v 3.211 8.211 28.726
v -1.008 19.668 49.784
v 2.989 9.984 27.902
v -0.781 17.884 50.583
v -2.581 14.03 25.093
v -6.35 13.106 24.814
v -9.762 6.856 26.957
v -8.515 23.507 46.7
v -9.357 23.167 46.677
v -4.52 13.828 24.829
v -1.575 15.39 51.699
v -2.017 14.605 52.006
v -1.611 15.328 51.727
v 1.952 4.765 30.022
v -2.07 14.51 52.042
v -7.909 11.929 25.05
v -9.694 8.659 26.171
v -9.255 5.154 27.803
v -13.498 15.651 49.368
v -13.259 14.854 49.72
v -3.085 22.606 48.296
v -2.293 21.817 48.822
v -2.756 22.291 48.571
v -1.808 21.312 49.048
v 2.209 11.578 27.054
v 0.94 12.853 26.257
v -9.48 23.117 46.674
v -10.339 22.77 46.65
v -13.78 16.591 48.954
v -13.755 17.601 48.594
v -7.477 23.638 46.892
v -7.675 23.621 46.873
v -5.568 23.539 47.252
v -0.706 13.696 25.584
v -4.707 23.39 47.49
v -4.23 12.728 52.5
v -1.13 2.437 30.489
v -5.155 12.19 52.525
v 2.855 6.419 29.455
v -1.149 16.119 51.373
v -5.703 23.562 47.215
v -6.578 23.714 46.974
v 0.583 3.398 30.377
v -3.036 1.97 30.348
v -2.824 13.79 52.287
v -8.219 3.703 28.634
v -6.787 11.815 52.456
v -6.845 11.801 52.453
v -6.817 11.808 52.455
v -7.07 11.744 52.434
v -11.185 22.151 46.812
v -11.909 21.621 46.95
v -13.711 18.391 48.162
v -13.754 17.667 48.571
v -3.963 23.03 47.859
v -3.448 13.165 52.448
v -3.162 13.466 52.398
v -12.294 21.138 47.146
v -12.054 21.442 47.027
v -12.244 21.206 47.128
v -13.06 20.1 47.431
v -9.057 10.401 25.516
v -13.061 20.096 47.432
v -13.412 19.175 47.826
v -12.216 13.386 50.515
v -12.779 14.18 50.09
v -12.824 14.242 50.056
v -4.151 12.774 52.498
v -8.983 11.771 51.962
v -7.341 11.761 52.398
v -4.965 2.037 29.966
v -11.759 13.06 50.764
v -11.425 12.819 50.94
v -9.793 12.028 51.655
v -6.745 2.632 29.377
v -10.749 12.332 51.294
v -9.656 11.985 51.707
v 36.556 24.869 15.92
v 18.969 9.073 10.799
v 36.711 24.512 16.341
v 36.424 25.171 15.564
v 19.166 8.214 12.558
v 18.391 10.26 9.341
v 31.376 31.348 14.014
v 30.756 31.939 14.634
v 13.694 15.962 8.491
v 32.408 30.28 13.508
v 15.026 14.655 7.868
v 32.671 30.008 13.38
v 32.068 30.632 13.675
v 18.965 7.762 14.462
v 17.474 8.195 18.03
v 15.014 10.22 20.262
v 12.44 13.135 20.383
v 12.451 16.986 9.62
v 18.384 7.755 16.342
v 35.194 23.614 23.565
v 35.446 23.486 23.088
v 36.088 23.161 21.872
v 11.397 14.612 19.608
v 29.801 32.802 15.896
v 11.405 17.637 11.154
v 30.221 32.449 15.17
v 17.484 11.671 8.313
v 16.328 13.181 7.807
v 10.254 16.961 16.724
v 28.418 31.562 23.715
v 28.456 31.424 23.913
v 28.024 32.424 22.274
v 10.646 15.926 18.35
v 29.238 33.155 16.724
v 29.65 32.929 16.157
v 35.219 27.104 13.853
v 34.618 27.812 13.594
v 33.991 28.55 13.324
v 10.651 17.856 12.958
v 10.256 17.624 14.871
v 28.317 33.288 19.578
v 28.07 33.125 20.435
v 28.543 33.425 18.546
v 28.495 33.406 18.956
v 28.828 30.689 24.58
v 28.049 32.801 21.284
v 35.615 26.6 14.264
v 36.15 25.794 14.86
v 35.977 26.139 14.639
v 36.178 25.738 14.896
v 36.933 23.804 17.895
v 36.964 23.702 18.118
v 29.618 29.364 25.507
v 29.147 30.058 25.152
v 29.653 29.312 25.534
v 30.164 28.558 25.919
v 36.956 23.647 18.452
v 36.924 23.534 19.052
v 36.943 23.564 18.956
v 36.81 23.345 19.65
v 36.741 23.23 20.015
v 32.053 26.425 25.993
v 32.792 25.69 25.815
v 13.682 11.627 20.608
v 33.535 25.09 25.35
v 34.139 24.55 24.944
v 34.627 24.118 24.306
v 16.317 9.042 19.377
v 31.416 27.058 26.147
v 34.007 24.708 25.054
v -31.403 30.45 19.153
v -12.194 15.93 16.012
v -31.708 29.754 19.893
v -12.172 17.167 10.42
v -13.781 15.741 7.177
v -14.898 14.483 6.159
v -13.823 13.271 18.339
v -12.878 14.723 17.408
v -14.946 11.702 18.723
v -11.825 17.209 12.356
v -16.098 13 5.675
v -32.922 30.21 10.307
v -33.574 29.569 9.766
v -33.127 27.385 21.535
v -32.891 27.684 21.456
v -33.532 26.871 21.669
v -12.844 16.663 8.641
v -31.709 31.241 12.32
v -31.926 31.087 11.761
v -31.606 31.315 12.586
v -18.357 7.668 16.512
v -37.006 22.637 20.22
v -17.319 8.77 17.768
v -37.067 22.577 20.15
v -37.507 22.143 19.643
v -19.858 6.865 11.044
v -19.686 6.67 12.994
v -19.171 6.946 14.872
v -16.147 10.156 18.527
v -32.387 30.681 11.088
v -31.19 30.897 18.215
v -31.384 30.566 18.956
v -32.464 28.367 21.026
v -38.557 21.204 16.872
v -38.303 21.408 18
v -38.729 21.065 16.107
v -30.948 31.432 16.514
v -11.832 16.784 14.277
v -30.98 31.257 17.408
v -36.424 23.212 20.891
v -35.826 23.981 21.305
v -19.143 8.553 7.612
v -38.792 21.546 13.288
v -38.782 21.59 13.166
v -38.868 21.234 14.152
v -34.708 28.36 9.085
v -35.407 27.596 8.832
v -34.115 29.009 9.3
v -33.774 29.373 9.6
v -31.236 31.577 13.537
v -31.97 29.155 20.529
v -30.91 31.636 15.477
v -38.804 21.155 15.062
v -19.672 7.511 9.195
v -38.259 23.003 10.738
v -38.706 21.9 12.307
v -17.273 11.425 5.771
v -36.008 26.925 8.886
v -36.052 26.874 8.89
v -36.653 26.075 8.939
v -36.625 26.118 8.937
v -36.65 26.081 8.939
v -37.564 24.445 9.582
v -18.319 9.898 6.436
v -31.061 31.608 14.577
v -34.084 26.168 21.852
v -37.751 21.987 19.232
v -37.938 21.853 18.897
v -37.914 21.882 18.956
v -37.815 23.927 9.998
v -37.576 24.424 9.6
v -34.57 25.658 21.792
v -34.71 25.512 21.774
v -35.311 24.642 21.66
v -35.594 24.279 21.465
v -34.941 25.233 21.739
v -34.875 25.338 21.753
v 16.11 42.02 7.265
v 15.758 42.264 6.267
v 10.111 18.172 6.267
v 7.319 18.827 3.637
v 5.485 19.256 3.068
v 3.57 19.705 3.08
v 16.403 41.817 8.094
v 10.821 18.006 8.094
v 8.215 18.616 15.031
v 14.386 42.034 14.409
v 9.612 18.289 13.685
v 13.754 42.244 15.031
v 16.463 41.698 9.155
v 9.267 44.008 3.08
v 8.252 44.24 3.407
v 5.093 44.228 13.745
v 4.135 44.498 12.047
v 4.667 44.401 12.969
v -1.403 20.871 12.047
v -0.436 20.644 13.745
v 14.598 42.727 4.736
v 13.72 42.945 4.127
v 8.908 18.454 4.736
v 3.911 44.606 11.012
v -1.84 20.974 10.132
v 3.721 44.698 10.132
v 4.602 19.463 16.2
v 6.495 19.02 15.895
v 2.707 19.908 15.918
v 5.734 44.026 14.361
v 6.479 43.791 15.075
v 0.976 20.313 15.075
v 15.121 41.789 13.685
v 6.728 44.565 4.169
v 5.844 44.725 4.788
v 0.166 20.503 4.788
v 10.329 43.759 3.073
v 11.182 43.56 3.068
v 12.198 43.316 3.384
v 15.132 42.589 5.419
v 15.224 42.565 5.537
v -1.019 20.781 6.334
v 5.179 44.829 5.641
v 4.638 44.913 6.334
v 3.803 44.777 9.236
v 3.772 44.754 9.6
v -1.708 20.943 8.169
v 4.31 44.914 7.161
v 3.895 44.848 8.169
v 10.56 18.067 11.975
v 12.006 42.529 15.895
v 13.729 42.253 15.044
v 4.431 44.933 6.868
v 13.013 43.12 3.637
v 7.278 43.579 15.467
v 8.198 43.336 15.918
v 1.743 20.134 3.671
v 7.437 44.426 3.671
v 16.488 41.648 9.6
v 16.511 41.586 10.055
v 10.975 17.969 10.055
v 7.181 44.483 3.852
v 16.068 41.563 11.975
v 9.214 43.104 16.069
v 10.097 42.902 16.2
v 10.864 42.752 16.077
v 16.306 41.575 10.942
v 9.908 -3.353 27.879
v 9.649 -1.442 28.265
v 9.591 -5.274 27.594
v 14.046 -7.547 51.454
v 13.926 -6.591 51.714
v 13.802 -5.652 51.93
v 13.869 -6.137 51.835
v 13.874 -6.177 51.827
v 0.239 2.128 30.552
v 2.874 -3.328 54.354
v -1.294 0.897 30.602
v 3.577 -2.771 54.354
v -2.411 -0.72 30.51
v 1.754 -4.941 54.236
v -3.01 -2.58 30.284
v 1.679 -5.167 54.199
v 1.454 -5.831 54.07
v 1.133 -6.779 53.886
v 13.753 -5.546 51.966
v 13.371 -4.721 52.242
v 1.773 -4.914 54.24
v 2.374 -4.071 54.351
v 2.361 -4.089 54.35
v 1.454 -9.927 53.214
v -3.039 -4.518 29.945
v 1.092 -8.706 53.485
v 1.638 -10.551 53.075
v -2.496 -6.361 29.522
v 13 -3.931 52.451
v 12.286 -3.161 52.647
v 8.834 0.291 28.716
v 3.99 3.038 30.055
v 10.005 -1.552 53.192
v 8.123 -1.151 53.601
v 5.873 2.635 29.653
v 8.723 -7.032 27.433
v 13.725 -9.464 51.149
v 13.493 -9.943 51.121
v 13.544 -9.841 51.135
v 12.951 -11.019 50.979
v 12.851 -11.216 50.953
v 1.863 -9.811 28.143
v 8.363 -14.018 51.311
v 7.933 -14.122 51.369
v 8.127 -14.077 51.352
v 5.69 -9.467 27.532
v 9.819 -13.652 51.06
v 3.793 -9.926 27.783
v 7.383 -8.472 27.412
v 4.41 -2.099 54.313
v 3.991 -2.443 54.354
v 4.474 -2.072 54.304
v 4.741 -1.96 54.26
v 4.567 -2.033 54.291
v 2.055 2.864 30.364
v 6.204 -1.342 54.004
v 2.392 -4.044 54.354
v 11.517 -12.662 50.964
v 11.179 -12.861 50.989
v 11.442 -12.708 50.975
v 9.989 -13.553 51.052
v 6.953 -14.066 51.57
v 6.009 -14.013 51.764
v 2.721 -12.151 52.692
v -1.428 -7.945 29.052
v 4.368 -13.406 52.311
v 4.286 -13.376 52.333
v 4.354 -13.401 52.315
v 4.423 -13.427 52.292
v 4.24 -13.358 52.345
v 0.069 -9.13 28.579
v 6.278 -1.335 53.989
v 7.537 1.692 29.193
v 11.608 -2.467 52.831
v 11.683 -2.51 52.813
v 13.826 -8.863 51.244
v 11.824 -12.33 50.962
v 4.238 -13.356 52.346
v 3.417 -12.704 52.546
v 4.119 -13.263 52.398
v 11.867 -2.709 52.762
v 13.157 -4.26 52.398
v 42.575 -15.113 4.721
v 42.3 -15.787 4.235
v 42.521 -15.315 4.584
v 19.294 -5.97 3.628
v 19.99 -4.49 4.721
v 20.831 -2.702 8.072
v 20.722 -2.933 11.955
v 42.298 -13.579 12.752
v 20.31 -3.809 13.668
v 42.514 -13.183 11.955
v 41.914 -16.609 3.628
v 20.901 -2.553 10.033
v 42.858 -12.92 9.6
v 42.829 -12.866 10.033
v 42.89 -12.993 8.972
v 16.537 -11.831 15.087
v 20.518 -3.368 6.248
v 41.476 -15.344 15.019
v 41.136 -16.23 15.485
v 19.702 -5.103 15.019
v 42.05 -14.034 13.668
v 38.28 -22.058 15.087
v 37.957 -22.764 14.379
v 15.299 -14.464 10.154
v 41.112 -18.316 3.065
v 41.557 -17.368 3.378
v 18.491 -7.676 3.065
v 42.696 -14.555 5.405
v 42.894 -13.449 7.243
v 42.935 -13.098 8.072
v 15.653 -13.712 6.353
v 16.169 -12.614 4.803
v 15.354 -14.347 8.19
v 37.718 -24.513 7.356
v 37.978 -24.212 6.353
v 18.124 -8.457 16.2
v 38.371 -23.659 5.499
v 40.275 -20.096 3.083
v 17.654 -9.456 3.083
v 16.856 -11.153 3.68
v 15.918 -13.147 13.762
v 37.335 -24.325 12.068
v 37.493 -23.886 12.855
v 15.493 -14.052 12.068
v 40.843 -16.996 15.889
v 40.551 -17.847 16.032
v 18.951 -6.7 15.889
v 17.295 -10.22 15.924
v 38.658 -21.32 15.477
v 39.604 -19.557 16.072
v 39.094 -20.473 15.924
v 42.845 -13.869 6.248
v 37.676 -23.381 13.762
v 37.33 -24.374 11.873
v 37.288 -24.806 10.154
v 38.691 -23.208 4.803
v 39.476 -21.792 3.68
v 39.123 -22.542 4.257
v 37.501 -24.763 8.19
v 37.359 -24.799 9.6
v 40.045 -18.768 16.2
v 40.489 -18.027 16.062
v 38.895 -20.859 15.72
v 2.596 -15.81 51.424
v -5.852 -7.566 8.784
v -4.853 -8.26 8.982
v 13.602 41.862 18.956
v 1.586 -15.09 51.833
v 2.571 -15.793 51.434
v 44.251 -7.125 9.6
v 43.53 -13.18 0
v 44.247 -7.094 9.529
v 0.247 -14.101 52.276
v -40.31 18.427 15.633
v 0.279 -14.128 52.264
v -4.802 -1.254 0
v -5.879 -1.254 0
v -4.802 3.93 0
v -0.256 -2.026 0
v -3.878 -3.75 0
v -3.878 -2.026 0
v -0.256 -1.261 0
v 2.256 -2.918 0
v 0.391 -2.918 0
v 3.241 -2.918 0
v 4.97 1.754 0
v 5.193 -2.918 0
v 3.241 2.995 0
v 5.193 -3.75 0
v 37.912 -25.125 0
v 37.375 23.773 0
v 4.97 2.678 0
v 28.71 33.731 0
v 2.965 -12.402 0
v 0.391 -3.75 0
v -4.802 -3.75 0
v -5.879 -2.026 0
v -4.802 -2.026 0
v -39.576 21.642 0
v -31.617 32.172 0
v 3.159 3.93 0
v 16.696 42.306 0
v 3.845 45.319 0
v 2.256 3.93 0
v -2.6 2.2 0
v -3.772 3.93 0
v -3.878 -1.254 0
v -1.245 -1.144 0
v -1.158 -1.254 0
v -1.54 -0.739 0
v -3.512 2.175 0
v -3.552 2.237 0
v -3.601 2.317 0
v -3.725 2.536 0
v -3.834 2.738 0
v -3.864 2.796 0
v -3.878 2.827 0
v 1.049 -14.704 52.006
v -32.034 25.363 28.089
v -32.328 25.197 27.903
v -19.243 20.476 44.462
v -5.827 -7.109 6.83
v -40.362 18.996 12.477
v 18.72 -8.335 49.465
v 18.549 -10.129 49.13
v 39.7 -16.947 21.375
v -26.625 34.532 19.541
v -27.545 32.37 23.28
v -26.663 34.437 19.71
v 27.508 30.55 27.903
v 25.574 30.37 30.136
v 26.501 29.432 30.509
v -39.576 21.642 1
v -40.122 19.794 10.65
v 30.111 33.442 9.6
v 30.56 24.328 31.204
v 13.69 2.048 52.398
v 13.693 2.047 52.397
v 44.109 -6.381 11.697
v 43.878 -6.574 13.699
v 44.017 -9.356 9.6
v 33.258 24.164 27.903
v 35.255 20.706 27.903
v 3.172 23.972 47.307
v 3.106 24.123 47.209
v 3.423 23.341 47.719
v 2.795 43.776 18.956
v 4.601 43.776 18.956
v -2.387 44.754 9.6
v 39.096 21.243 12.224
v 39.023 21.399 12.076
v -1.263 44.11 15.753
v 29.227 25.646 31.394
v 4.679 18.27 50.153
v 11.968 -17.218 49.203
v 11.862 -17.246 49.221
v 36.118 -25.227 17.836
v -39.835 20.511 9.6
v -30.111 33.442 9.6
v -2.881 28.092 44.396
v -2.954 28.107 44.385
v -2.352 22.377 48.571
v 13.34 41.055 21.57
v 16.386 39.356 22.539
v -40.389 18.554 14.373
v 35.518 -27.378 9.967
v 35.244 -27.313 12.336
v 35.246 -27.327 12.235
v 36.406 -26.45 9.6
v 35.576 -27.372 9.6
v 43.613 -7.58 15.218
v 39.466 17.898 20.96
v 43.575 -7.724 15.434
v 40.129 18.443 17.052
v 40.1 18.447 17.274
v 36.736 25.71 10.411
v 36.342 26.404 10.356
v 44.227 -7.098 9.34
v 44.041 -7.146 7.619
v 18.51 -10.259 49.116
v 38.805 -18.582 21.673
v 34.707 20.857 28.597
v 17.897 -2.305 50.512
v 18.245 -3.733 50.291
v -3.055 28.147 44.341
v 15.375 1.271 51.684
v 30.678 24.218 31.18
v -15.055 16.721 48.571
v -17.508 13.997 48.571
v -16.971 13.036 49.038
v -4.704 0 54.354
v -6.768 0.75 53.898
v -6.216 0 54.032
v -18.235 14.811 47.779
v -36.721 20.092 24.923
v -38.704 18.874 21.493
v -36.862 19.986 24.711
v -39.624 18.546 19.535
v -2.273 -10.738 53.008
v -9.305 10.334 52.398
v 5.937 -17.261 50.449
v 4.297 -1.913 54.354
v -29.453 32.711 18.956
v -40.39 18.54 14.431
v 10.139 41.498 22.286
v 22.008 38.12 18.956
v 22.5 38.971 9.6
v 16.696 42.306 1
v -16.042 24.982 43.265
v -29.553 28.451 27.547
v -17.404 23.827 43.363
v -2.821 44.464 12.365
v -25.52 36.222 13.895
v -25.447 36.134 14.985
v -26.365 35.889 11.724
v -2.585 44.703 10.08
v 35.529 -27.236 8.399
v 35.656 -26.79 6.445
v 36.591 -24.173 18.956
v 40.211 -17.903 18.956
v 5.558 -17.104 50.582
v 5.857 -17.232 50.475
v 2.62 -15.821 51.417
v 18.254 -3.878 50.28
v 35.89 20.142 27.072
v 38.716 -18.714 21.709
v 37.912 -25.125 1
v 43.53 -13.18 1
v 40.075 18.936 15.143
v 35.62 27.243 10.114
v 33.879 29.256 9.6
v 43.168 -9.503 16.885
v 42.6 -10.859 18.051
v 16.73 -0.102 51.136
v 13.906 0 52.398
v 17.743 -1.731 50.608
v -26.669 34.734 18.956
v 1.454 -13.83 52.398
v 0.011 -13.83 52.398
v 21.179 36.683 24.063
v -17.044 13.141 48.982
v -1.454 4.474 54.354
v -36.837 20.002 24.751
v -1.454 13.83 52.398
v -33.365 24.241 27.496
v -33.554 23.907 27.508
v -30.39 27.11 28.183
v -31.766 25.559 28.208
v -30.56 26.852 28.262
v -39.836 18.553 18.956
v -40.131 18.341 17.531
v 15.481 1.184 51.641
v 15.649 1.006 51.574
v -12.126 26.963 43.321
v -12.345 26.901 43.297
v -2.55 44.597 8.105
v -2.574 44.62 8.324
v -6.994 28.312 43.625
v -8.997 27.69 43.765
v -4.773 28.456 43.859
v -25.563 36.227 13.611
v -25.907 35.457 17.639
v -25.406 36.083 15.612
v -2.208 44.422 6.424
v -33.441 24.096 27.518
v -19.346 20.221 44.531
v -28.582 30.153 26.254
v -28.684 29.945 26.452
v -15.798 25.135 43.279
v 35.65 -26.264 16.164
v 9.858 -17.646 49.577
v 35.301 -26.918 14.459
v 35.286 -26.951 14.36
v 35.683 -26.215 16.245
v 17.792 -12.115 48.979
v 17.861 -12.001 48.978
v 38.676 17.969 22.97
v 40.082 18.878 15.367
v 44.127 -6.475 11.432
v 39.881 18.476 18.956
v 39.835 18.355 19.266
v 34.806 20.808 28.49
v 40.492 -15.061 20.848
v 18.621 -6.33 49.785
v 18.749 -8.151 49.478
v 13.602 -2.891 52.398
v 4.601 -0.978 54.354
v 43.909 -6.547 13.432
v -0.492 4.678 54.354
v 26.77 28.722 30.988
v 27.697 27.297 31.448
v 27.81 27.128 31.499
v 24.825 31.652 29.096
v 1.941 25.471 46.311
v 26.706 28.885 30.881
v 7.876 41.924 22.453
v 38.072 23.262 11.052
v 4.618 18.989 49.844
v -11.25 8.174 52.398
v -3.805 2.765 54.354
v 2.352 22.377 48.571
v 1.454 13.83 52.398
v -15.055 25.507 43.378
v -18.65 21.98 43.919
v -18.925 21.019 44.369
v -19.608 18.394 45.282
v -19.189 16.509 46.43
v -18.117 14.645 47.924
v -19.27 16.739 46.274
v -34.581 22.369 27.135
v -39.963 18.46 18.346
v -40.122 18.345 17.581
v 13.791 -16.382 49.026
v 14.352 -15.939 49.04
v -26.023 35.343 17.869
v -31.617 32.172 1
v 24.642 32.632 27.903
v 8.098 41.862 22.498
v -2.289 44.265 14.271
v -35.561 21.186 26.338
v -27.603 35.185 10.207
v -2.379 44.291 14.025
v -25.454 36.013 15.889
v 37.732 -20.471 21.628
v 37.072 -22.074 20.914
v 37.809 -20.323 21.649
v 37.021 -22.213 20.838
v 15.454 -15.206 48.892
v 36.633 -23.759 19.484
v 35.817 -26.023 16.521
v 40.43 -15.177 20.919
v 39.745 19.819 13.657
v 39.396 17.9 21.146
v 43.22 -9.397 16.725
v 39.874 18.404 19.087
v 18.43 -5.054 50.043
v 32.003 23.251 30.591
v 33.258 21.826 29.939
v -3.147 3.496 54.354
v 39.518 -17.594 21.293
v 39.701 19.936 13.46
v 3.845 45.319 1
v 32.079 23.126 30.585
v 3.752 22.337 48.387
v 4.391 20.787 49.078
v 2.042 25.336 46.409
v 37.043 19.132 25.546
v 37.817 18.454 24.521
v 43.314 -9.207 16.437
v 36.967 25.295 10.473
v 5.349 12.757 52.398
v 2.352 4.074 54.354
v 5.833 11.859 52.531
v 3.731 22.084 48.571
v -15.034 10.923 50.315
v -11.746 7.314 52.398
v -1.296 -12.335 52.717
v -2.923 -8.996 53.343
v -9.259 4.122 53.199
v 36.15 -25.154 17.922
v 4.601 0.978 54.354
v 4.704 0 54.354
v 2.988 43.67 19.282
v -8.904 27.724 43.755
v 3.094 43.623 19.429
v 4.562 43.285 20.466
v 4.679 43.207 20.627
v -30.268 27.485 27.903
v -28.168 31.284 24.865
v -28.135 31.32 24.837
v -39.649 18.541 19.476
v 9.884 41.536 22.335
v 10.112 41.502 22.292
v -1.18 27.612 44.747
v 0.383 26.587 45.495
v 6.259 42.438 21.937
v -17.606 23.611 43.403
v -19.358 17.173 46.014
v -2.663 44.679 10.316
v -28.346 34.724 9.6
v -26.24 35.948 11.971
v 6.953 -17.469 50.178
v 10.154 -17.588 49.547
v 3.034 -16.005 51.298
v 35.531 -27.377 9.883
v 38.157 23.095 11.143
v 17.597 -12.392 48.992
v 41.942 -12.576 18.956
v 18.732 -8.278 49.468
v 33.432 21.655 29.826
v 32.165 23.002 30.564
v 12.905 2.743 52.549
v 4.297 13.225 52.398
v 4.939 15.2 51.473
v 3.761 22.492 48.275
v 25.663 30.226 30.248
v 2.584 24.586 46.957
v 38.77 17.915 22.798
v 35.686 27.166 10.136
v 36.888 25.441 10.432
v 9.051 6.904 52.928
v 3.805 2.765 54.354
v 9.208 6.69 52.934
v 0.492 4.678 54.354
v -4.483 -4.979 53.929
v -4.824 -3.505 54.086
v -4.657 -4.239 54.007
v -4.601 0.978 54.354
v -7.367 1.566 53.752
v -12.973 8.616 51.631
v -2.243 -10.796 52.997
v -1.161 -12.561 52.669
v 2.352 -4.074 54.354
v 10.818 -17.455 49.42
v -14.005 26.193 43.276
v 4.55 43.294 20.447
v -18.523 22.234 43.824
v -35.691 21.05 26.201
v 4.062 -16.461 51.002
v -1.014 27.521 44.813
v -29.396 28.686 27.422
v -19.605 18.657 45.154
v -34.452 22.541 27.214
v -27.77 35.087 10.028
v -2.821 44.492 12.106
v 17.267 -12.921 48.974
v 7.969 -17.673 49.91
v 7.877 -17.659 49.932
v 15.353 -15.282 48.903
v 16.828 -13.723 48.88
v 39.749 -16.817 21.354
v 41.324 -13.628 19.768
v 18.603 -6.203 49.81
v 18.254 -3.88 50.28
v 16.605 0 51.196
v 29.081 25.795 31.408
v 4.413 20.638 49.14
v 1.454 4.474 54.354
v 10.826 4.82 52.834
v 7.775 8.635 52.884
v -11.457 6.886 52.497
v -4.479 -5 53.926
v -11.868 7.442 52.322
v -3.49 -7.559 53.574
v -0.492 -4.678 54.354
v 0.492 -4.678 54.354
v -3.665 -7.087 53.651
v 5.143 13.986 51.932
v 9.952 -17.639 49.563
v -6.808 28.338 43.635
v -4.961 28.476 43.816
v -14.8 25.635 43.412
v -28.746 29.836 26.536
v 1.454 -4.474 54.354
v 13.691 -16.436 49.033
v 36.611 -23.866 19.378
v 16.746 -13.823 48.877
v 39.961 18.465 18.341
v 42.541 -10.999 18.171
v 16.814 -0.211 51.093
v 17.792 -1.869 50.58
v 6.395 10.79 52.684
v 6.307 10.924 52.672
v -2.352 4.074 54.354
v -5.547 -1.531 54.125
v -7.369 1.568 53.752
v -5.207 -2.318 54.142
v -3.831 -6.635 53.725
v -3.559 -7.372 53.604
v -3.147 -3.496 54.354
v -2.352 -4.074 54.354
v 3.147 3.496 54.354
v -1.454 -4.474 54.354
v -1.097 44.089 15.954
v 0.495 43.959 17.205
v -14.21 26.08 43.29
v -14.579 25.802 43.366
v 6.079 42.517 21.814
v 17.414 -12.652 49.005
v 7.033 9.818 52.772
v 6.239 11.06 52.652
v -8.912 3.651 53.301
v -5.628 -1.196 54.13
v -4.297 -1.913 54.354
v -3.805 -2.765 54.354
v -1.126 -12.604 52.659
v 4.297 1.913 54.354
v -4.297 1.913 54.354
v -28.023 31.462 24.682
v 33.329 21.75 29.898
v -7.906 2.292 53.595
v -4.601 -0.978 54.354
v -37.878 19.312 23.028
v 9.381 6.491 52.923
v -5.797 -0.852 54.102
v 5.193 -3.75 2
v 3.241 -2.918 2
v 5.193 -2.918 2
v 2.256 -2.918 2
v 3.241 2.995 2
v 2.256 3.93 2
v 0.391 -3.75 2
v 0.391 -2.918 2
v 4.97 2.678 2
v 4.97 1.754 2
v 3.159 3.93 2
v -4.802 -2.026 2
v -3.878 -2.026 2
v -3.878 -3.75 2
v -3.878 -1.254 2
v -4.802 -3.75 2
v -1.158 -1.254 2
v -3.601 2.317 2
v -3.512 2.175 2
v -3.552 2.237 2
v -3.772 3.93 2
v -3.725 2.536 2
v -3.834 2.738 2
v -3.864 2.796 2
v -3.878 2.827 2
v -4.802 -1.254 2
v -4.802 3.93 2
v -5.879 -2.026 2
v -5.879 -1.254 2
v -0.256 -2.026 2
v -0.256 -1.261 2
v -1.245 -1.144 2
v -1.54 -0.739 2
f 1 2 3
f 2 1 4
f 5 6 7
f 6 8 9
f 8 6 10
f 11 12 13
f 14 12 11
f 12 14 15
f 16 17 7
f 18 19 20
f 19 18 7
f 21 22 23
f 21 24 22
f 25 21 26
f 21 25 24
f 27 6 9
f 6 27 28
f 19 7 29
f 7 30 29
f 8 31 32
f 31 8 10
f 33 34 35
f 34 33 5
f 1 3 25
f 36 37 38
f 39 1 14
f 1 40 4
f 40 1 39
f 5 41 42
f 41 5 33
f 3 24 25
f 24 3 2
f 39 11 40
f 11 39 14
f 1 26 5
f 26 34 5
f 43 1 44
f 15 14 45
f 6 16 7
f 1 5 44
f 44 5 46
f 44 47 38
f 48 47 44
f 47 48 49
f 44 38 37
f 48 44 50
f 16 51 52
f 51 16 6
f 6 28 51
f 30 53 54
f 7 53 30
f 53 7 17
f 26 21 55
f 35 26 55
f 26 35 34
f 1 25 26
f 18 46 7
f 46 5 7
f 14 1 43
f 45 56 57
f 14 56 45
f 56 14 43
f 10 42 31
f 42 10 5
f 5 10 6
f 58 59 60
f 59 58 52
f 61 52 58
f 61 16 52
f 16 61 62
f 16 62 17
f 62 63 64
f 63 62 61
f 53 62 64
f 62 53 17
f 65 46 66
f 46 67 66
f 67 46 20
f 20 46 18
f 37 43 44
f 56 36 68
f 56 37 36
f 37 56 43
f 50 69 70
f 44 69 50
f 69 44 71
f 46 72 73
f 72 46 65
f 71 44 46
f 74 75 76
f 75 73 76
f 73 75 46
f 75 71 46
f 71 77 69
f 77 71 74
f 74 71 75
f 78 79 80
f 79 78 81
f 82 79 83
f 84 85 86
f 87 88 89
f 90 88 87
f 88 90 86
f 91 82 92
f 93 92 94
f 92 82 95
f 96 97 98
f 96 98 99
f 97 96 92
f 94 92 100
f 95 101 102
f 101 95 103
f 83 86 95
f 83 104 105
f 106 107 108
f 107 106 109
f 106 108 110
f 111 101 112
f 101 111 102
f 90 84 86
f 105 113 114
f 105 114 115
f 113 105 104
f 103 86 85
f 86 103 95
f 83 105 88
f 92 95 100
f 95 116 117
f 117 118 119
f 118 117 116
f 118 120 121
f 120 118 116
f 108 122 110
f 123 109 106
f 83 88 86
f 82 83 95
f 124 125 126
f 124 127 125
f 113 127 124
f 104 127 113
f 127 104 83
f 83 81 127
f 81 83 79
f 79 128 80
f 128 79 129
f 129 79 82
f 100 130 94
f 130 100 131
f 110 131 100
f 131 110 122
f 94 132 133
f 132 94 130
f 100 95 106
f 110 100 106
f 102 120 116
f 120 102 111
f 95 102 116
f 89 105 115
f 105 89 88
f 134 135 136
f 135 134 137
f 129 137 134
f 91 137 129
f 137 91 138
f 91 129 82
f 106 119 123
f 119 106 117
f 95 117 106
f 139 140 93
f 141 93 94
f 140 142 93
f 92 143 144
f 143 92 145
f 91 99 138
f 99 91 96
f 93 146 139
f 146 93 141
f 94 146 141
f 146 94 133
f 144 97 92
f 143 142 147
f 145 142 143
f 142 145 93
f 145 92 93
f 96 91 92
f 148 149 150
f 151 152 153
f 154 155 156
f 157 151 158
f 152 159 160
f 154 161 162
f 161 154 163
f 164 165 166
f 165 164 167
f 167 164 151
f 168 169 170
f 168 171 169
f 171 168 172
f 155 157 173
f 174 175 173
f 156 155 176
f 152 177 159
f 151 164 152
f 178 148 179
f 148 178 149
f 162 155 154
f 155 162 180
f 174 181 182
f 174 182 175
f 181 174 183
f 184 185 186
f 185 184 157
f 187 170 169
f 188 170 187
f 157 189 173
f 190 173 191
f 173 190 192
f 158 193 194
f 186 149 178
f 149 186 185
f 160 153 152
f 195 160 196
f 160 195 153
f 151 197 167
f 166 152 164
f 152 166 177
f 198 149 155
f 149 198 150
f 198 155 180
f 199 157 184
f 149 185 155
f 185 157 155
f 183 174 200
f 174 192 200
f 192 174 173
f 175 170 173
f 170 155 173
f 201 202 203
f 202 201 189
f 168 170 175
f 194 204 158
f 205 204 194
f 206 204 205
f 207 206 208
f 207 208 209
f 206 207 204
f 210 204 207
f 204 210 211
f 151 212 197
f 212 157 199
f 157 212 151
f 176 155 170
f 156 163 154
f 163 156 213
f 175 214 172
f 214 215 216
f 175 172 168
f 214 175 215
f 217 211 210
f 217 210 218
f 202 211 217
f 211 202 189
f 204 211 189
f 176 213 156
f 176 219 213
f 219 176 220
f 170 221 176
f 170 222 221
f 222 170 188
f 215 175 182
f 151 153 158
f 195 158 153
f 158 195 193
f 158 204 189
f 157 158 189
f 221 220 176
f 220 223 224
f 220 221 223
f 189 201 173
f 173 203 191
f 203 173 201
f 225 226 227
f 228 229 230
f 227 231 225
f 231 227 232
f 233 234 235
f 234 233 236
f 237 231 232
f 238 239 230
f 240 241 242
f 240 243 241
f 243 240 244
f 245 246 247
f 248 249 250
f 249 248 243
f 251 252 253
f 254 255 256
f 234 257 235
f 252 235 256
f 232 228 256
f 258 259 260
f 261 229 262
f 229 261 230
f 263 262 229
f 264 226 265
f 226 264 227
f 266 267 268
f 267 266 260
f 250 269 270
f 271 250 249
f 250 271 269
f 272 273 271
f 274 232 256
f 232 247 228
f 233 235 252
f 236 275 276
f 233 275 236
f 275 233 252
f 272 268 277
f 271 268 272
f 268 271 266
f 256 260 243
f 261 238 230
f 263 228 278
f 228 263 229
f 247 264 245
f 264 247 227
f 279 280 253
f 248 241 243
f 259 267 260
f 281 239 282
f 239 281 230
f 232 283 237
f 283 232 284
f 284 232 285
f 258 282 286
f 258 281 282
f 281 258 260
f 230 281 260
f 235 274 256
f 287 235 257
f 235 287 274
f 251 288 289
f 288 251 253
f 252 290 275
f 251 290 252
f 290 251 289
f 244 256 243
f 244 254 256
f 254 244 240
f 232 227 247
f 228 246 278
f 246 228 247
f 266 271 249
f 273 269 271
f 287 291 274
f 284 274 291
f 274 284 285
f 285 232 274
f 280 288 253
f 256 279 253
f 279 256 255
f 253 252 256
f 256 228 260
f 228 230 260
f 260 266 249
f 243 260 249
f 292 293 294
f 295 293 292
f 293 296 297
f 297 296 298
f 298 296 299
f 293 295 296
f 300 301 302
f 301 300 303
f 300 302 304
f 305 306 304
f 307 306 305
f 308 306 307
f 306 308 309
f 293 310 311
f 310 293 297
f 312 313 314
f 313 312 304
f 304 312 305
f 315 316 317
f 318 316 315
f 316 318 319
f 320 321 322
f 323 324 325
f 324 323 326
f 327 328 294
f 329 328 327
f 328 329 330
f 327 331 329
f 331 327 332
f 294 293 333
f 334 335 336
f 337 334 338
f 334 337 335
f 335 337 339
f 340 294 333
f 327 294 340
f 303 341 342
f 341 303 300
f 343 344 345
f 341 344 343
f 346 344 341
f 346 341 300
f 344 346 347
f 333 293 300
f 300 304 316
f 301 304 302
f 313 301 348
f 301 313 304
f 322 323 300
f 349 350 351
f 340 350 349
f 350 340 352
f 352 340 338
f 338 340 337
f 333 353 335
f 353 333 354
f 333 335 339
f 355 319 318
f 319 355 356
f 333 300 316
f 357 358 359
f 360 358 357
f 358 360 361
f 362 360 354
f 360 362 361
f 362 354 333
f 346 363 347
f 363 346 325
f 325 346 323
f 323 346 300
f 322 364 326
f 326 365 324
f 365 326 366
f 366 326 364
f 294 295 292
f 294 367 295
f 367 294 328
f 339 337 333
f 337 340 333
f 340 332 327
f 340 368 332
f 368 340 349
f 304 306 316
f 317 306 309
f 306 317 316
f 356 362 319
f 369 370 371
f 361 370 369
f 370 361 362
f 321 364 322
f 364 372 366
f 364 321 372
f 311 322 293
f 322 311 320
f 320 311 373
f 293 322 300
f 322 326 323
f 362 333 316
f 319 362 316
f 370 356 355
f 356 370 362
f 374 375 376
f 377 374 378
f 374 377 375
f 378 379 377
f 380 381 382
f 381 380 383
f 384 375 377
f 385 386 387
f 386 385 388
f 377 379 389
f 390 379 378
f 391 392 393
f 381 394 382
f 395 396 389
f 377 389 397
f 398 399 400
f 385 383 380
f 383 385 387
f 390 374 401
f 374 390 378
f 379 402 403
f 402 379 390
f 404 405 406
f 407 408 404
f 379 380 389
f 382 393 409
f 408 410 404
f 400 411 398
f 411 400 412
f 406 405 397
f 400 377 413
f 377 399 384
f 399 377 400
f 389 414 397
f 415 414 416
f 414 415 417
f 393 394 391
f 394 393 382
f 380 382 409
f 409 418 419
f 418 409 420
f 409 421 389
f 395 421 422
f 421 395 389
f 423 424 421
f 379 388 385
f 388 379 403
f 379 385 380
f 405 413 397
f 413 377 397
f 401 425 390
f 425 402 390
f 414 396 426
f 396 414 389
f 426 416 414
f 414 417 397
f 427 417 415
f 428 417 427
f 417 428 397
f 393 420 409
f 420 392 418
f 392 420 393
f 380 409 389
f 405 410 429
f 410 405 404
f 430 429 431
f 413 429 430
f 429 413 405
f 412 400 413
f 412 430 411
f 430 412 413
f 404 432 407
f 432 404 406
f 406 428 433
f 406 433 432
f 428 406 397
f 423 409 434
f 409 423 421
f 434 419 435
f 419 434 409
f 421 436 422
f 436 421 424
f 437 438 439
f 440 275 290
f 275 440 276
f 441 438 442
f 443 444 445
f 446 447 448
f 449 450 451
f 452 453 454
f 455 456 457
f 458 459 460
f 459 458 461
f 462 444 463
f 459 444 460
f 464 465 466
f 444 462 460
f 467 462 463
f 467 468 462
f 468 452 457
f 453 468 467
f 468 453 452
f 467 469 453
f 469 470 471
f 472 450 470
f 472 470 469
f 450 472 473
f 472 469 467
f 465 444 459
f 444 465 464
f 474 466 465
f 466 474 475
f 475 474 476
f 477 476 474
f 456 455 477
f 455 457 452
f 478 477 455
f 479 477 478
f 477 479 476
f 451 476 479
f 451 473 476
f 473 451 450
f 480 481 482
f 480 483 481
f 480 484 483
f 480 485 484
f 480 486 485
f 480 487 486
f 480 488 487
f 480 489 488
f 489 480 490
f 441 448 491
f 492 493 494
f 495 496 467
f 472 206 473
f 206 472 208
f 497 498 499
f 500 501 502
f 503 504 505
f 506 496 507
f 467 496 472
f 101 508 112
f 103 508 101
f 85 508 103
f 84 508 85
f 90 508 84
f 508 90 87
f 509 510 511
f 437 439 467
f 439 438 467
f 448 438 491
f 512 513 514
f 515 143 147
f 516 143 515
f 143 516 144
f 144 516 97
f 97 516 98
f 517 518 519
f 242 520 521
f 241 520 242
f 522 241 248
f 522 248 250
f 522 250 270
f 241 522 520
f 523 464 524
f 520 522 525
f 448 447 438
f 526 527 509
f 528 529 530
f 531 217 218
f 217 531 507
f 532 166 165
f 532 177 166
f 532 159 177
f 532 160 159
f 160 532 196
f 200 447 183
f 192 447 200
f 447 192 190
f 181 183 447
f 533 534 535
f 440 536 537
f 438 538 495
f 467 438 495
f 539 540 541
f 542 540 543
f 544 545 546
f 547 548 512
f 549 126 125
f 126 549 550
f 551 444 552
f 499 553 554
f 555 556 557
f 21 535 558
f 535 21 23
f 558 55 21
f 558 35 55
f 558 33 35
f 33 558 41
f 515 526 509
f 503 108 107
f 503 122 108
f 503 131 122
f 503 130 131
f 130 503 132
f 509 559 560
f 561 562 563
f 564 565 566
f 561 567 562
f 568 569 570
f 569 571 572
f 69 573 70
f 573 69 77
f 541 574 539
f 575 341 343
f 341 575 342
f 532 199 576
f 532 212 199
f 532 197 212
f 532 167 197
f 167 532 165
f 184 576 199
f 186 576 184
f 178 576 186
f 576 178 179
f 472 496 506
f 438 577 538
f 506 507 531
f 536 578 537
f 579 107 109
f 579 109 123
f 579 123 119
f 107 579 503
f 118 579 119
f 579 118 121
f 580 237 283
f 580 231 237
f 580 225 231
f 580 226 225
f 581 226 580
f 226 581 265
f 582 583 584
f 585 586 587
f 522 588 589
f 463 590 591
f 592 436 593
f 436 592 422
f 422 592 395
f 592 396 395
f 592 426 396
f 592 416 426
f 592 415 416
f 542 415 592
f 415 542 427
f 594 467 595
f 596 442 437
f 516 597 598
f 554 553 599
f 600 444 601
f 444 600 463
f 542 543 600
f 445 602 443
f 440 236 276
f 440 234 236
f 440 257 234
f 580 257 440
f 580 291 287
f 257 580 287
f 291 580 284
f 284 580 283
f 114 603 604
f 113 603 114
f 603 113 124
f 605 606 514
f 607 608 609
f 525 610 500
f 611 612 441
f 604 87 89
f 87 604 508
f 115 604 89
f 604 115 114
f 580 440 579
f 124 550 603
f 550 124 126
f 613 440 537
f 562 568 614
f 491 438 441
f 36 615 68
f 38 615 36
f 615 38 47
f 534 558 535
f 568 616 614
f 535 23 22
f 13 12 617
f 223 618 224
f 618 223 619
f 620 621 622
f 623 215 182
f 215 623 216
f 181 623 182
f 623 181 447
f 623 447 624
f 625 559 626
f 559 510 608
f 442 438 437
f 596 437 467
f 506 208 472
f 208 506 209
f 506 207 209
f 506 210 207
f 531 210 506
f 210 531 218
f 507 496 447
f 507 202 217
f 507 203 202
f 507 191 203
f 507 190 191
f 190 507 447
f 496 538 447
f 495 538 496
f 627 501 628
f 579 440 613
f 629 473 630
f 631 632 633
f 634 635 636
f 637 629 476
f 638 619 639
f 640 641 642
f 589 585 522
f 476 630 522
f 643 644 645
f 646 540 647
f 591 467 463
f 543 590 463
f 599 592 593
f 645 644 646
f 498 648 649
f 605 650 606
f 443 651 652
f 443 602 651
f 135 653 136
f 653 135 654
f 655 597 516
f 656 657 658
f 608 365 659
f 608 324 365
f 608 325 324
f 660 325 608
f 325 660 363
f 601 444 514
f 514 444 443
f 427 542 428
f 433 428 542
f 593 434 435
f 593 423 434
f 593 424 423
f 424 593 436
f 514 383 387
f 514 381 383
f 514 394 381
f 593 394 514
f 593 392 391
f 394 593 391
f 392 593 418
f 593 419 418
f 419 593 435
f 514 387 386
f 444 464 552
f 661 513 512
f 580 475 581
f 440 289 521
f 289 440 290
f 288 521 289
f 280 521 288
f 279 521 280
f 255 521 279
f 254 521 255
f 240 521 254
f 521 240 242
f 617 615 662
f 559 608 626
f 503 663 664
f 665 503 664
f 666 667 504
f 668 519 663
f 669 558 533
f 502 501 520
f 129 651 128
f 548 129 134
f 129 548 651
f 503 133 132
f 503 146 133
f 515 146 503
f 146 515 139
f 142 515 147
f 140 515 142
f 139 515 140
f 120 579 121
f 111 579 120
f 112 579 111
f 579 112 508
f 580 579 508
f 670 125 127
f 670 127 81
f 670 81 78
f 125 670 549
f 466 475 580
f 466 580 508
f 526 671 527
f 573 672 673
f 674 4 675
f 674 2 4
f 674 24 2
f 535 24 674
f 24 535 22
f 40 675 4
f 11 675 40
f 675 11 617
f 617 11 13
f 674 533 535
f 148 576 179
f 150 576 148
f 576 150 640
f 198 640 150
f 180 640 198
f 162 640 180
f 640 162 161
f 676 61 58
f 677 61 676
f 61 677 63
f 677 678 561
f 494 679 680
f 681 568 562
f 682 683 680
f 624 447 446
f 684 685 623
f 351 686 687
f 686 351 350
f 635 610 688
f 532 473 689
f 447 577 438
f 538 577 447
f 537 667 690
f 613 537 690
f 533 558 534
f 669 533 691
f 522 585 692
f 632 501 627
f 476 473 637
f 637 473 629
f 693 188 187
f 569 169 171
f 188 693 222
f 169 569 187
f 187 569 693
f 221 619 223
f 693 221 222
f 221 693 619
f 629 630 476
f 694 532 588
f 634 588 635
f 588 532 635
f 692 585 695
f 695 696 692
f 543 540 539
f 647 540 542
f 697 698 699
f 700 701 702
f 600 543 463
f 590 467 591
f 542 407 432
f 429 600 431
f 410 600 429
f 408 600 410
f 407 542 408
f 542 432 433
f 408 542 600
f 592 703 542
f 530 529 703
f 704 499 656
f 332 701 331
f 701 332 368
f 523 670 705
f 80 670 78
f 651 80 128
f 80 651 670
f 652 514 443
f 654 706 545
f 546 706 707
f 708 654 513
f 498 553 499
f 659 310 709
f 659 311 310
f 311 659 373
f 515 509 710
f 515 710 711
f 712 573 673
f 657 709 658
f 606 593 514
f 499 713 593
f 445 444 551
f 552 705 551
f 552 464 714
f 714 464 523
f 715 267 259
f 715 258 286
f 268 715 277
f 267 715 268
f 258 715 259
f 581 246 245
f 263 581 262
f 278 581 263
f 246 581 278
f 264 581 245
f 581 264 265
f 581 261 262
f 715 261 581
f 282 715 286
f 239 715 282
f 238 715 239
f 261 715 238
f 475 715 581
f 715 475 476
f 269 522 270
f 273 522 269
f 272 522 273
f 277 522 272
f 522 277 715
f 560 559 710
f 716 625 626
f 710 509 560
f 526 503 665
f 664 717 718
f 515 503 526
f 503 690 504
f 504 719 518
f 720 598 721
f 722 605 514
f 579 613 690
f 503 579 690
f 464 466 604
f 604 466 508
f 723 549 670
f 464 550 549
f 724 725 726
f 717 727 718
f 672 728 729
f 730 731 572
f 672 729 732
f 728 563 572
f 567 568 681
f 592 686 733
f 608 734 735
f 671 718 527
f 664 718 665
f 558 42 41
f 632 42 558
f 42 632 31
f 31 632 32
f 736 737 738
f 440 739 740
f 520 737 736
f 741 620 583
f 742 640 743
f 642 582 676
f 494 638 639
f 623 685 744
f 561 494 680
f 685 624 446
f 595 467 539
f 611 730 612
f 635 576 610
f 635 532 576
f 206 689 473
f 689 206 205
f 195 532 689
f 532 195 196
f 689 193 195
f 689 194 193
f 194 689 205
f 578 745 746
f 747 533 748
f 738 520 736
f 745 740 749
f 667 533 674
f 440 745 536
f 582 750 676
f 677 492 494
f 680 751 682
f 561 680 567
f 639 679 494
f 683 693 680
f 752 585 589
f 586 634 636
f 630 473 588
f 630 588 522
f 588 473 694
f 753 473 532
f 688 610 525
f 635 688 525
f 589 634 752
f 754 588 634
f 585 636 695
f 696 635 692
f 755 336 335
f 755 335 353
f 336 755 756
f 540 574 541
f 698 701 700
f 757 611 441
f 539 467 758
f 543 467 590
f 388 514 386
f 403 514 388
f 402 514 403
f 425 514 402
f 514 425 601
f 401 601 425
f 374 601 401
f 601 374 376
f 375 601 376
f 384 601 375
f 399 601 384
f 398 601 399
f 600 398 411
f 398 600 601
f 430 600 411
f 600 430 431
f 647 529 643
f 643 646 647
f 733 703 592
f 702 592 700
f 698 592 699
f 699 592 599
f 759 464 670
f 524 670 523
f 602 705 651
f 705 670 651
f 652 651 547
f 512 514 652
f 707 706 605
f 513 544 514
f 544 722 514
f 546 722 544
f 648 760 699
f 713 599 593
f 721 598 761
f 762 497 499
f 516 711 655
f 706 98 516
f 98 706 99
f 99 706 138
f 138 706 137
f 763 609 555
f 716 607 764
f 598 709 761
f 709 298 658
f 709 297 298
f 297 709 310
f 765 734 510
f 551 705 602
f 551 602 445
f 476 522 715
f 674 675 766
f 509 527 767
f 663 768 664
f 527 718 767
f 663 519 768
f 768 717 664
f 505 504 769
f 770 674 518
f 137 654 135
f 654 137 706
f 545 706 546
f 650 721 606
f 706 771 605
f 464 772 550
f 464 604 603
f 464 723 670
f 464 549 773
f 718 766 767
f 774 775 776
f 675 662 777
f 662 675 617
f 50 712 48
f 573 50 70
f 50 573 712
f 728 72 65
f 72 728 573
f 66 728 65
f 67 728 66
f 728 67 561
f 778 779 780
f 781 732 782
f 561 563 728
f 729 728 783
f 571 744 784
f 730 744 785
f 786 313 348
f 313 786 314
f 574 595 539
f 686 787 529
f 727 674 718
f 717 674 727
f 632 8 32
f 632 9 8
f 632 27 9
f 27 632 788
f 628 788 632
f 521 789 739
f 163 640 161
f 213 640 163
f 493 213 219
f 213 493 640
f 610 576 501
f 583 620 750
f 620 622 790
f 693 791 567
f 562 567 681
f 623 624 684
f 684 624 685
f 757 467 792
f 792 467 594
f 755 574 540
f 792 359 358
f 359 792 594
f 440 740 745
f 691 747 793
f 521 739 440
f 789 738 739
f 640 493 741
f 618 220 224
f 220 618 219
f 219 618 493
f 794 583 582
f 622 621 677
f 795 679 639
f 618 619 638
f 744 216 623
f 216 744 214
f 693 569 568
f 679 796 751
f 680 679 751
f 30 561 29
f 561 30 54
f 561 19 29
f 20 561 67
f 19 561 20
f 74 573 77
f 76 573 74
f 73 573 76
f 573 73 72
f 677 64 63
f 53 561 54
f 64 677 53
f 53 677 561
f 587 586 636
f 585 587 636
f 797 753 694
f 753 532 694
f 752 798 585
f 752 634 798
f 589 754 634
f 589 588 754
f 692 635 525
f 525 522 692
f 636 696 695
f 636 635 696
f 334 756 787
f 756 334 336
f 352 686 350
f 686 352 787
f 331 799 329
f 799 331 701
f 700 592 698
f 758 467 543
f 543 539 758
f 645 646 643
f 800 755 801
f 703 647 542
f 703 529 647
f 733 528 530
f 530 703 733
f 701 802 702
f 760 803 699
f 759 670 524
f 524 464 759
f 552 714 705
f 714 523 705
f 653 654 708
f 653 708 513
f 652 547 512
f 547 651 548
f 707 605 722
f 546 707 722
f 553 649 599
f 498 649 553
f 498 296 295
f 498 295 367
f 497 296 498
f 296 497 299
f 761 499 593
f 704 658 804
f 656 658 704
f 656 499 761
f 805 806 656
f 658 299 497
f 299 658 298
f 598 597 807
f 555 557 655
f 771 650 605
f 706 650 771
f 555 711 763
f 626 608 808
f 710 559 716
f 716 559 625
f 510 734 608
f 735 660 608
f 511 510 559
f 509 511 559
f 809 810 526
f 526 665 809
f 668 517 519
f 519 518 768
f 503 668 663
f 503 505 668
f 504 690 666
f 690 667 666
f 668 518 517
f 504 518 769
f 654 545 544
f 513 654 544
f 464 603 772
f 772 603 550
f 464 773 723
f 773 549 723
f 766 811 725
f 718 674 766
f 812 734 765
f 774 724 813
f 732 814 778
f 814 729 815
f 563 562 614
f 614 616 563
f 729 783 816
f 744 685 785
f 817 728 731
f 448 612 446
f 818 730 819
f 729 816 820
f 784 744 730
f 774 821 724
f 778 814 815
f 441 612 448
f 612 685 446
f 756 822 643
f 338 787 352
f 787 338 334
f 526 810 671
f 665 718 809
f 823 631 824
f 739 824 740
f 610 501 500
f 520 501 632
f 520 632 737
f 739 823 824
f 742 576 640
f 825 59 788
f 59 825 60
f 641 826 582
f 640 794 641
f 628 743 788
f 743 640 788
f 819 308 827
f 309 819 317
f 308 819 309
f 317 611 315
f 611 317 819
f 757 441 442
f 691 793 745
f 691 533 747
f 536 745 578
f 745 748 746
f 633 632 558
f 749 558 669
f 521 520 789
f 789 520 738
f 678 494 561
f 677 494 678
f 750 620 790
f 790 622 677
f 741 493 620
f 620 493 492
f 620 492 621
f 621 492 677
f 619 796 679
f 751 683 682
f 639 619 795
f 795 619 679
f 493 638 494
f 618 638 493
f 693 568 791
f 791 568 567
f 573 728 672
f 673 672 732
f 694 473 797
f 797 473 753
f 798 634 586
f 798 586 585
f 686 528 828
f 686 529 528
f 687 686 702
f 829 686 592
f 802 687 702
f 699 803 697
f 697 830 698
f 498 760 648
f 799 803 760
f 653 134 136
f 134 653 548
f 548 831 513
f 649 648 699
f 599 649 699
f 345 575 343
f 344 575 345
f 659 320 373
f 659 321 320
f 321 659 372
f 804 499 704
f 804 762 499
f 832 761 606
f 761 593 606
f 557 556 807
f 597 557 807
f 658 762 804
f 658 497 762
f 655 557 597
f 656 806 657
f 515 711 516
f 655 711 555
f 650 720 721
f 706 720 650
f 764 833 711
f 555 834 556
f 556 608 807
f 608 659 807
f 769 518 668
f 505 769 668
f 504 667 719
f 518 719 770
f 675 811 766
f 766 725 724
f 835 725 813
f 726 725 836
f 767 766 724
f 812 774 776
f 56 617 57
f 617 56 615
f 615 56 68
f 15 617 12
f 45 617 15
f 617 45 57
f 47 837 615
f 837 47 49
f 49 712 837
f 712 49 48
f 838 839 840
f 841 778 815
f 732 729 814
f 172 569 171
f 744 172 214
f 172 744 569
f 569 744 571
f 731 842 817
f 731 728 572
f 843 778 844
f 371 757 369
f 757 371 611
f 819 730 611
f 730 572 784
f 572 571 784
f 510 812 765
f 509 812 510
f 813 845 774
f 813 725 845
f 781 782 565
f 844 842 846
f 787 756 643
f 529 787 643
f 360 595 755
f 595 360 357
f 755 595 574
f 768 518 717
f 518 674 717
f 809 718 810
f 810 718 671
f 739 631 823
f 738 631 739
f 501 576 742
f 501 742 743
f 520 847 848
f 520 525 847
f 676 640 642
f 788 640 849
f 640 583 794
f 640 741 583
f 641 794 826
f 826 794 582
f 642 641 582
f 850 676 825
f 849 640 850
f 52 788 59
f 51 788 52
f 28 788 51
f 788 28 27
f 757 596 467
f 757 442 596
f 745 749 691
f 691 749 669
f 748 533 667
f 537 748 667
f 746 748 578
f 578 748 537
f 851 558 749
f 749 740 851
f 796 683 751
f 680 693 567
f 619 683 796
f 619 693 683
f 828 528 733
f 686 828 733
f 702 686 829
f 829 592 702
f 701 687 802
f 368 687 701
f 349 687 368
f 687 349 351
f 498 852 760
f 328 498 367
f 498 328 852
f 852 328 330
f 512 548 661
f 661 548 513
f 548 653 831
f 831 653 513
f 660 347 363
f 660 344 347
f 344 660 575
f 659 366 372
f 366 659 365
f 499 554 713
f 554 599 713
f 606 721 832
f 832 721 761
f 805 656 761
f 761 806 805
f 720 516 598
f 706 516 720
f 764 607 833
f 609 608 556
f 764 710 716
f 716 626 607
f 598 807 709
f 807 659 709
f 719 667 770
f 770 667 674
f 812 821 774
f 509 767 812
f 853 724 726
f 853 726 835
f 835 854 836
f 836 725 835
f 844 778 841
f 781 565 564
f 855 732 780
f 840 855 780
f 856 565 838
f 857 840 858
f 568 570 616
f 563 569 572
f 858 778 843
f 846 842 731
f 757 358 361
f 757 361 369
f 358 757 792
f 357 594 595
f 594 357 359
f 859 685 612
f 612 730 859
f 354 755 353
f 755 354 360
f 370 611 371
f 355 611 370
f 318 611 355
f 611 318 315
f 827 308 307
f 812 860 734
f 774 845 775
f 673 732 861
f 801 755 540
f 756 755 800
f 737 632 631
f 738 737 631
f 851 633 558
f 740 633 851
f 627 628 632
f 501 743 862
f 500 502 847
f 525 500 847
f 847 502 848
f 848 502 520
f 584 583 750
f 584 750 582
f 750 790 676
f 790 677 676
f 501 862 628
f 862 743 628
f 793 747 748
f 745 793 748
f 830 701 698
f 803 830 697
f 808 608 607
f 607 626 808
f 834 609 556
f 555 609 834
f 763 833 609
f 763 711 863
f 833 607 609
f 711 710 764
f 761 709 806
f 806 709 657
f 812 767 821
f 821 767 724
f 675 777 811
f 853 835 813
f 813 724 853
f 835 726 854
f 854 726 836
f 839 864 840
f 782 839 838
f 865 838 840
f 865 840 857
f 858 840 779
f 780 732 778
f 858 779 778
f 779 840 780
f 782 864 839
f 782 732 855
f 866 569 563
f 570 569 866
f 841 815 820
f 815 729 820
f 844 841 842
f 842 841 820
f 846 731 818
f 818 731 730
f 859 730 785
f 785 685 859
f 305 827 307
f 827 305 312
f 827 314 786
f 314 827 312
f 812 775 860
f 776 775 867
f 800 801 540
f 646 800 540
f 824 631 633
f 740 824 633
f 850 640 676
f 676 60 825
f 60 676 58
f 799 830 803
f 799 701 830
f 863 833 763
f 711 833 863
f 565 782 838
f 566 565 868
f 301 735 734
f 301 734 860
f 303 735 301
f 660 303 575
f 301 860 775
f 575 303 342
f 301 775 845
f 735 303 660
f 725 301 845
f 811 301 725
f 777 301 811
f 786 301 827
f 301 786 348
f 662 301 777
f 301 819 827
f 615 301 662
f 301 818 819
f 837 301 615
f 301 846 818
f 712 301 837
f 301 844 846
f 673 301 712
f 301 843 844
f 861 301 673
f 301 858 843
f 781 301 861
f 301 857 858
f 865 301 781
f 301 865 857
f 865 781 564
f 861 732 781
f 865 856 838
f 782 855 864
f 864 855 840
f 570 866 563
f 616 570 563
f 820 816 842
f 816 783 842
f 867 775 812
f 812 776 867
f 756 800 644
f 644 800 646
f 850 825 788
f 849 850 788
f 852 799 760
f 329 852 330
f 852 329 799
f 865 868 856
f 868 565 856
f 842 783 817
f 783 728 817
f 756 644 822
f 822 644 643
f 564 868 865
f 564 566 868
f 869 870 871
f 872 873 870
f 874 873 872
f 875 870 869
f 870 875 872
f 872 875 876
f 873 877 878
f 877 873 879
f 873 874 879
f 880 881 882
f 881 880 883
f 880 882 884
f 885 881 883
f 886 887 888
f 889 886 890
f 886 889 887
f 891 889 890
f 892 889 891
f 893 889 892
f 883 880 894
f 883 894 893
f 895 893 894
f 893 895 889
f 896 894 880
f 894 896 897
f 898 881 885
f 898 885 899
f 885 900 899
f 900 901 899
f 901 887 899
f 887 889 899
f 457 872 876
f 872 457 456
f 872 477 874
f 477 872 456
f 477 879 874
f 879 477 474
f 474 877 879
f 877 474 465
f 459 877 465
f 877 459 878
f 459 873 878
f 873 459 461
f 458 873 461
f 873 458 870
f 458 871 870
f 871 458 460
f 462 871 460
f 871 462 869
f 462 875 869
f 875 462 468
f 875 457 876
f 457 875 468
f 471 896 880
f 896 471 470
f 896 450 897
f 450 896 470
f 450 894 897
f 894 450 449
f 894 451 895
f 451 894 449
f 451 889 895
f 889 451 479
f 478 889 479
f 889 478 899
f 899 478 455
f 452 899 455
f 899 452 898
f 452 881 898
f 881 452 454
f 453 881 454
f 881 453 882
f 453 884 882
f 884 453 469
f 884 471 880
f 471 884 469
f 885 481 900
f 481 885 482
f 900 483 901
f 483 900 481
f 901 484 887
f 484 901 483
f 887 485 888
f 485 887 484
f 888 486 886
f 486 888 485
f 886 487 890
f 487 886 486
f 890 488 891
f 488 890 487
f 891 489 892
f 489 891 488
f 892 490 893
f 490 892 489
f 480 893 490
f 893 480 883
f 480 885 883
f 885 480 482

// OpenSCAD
difference() {
	difference() {
		difference() {
			hull() {
				union() {
					union() {
						rotate(a = 112.4270499580, v = [0, 0, 1]) {
							translate(v = [0, -6.6000000000, 0]) {
								cube(size = [19.4319750552, 13.2000000000, 1]);
							}
						}
						rotate(a = 41.0287428882, v = [0, 0, 1]) {
							translate(v = [0, -6.6000000000, 0]) {
								cube(size = [43.8005195992, 13.2000000000, 1]);
							}
						}
						rotate(a = 142.9144603502, v = [0, 0, 1]) {
							translate(v = [0, -6.6000000000, 0]) {
								cube(size = [44.6220599310, 13.2000000000, 1]);
							}
						}
						rotate(a = 76.8071244595, v = [0, 0, 1]) {
							translate(v = [0, -6.6000000000, 0]) {
								cube(size = [45.0000000000, 13.2000000000, 1]);
							}
						}
						rotate(a = -45.3848160478, v = [0, 0, 1]) {
							translate(v = [0, -6.6000000000, 0]) {
								cube(size = [10.9102389877, 13.2000000000, 1]);
							}
						}
						rotate(a = -25.1891952019, v = [0, 0, 1]) {
							translate(v = [0, -6.6000000000, 0]) {
								cube(size = [45.0000000000, 13.2000000000, 1]);
							}
						}
					}
					translate(v = [0, 0, 9.5999978432]) {
						intersection() {
							hull() {
								rotate(a = 25.5831923221, v = [-0.3991603759, -0.1647438142, 0.0000005639]) {
									cylinder(h = 45, r = 9.6000000000);
								}
								rotate(a = 76.7413279298, v = [-0.6389399015, 0.7342720394, -0.0000000953]) {
									cylinder(h = 45, r = 9.6000000000);
								}
								rotate(a = 82.5690110189, v = [-0.5979420914, -0.7910363497, 0.0000013890]) {
									cylinder(h = 45, r = 9.6000000000);
								}
								rotate(a = 89.9999242538, v = [-0.9736072897, 0.2282298084, 0.0000007454]) {
									cylinder(h = 45, r = 9.6000000000);
								}
								rotate(a = 14.0311726746, v = [0.1725863903, 0.1702816085, -0.0000003429]) {
									cylinder(h = 45, r = 9.6000000000);
								}
								rotate(a = 89.9999697920, v = [0.4256086523, 0.9049073295, -0.0000013305]) {
									cylinder(h = 45, r = 9.6000000000);
								}
							}
							sphere(r = 45);
						}
					}
				}
			}
			translate(v = [0, 0, 9.5999978432]) {
				rotate(a = 25.5831923221, v = [-0.3991603759, -0.1647438142, 0.0000005639]) {
					translate(v = [0, 0, 20]) {
						cylinder(h = 45, r = 6.6000000000);
					}
				}
				rotate(a = 76.7413279298, v = [-0.6389399015, 0.7342720394, -0.0000000953]) {
					translate(v = [0, 0, 20]) {
						cylinder(h = 45, r = 6.6000000000);
					}
				}
				rotate(a = 82.5690110189, v = [-0.5979420914, -0.7910363497, 0.0000013890]) {
					translate(v = [0, 0, 20]) {
						cylinder(h = 45, r = 6.6000000000);
					}
				}
				rotate(a = 89.9999242538, v = [-0.9736072897, 0.2282298084, 0.0000007454]) {
					translate(v = [0, 0, 20]) {
						cylinder(h = 45, r = 6.6000000000);
					}
				}
				rotate(a = 14.0311726746, v = [0.1725863903, 0.1702816085, -0.0000003429]) {
					translate(v = [0, 0, 20]) {
						cylinder(h = 45, r = 6.6000000000);
					}
				}
				rotate(a = 89.9999697920, v = [0.4256086523, 0.9049073295, -0.0000013305]) {
					translate(v = [0, 0, 20]) {
						cylinder(h = 45, r = 6.6000000000);
					}
				}
			}
		}
		translate(v = [-100, -100, -100]) {
			cube(size = [200, 200, 100]);
		}
	}
	translate(v = [0, 0, 2]) {
		rotate(a = 180, v = [0, 1, 0]) {
			linear_extrude(height = 3) {
				text(halign = "center", size = 8, text = "14", valign = "center");
			}
		}
	}
}
